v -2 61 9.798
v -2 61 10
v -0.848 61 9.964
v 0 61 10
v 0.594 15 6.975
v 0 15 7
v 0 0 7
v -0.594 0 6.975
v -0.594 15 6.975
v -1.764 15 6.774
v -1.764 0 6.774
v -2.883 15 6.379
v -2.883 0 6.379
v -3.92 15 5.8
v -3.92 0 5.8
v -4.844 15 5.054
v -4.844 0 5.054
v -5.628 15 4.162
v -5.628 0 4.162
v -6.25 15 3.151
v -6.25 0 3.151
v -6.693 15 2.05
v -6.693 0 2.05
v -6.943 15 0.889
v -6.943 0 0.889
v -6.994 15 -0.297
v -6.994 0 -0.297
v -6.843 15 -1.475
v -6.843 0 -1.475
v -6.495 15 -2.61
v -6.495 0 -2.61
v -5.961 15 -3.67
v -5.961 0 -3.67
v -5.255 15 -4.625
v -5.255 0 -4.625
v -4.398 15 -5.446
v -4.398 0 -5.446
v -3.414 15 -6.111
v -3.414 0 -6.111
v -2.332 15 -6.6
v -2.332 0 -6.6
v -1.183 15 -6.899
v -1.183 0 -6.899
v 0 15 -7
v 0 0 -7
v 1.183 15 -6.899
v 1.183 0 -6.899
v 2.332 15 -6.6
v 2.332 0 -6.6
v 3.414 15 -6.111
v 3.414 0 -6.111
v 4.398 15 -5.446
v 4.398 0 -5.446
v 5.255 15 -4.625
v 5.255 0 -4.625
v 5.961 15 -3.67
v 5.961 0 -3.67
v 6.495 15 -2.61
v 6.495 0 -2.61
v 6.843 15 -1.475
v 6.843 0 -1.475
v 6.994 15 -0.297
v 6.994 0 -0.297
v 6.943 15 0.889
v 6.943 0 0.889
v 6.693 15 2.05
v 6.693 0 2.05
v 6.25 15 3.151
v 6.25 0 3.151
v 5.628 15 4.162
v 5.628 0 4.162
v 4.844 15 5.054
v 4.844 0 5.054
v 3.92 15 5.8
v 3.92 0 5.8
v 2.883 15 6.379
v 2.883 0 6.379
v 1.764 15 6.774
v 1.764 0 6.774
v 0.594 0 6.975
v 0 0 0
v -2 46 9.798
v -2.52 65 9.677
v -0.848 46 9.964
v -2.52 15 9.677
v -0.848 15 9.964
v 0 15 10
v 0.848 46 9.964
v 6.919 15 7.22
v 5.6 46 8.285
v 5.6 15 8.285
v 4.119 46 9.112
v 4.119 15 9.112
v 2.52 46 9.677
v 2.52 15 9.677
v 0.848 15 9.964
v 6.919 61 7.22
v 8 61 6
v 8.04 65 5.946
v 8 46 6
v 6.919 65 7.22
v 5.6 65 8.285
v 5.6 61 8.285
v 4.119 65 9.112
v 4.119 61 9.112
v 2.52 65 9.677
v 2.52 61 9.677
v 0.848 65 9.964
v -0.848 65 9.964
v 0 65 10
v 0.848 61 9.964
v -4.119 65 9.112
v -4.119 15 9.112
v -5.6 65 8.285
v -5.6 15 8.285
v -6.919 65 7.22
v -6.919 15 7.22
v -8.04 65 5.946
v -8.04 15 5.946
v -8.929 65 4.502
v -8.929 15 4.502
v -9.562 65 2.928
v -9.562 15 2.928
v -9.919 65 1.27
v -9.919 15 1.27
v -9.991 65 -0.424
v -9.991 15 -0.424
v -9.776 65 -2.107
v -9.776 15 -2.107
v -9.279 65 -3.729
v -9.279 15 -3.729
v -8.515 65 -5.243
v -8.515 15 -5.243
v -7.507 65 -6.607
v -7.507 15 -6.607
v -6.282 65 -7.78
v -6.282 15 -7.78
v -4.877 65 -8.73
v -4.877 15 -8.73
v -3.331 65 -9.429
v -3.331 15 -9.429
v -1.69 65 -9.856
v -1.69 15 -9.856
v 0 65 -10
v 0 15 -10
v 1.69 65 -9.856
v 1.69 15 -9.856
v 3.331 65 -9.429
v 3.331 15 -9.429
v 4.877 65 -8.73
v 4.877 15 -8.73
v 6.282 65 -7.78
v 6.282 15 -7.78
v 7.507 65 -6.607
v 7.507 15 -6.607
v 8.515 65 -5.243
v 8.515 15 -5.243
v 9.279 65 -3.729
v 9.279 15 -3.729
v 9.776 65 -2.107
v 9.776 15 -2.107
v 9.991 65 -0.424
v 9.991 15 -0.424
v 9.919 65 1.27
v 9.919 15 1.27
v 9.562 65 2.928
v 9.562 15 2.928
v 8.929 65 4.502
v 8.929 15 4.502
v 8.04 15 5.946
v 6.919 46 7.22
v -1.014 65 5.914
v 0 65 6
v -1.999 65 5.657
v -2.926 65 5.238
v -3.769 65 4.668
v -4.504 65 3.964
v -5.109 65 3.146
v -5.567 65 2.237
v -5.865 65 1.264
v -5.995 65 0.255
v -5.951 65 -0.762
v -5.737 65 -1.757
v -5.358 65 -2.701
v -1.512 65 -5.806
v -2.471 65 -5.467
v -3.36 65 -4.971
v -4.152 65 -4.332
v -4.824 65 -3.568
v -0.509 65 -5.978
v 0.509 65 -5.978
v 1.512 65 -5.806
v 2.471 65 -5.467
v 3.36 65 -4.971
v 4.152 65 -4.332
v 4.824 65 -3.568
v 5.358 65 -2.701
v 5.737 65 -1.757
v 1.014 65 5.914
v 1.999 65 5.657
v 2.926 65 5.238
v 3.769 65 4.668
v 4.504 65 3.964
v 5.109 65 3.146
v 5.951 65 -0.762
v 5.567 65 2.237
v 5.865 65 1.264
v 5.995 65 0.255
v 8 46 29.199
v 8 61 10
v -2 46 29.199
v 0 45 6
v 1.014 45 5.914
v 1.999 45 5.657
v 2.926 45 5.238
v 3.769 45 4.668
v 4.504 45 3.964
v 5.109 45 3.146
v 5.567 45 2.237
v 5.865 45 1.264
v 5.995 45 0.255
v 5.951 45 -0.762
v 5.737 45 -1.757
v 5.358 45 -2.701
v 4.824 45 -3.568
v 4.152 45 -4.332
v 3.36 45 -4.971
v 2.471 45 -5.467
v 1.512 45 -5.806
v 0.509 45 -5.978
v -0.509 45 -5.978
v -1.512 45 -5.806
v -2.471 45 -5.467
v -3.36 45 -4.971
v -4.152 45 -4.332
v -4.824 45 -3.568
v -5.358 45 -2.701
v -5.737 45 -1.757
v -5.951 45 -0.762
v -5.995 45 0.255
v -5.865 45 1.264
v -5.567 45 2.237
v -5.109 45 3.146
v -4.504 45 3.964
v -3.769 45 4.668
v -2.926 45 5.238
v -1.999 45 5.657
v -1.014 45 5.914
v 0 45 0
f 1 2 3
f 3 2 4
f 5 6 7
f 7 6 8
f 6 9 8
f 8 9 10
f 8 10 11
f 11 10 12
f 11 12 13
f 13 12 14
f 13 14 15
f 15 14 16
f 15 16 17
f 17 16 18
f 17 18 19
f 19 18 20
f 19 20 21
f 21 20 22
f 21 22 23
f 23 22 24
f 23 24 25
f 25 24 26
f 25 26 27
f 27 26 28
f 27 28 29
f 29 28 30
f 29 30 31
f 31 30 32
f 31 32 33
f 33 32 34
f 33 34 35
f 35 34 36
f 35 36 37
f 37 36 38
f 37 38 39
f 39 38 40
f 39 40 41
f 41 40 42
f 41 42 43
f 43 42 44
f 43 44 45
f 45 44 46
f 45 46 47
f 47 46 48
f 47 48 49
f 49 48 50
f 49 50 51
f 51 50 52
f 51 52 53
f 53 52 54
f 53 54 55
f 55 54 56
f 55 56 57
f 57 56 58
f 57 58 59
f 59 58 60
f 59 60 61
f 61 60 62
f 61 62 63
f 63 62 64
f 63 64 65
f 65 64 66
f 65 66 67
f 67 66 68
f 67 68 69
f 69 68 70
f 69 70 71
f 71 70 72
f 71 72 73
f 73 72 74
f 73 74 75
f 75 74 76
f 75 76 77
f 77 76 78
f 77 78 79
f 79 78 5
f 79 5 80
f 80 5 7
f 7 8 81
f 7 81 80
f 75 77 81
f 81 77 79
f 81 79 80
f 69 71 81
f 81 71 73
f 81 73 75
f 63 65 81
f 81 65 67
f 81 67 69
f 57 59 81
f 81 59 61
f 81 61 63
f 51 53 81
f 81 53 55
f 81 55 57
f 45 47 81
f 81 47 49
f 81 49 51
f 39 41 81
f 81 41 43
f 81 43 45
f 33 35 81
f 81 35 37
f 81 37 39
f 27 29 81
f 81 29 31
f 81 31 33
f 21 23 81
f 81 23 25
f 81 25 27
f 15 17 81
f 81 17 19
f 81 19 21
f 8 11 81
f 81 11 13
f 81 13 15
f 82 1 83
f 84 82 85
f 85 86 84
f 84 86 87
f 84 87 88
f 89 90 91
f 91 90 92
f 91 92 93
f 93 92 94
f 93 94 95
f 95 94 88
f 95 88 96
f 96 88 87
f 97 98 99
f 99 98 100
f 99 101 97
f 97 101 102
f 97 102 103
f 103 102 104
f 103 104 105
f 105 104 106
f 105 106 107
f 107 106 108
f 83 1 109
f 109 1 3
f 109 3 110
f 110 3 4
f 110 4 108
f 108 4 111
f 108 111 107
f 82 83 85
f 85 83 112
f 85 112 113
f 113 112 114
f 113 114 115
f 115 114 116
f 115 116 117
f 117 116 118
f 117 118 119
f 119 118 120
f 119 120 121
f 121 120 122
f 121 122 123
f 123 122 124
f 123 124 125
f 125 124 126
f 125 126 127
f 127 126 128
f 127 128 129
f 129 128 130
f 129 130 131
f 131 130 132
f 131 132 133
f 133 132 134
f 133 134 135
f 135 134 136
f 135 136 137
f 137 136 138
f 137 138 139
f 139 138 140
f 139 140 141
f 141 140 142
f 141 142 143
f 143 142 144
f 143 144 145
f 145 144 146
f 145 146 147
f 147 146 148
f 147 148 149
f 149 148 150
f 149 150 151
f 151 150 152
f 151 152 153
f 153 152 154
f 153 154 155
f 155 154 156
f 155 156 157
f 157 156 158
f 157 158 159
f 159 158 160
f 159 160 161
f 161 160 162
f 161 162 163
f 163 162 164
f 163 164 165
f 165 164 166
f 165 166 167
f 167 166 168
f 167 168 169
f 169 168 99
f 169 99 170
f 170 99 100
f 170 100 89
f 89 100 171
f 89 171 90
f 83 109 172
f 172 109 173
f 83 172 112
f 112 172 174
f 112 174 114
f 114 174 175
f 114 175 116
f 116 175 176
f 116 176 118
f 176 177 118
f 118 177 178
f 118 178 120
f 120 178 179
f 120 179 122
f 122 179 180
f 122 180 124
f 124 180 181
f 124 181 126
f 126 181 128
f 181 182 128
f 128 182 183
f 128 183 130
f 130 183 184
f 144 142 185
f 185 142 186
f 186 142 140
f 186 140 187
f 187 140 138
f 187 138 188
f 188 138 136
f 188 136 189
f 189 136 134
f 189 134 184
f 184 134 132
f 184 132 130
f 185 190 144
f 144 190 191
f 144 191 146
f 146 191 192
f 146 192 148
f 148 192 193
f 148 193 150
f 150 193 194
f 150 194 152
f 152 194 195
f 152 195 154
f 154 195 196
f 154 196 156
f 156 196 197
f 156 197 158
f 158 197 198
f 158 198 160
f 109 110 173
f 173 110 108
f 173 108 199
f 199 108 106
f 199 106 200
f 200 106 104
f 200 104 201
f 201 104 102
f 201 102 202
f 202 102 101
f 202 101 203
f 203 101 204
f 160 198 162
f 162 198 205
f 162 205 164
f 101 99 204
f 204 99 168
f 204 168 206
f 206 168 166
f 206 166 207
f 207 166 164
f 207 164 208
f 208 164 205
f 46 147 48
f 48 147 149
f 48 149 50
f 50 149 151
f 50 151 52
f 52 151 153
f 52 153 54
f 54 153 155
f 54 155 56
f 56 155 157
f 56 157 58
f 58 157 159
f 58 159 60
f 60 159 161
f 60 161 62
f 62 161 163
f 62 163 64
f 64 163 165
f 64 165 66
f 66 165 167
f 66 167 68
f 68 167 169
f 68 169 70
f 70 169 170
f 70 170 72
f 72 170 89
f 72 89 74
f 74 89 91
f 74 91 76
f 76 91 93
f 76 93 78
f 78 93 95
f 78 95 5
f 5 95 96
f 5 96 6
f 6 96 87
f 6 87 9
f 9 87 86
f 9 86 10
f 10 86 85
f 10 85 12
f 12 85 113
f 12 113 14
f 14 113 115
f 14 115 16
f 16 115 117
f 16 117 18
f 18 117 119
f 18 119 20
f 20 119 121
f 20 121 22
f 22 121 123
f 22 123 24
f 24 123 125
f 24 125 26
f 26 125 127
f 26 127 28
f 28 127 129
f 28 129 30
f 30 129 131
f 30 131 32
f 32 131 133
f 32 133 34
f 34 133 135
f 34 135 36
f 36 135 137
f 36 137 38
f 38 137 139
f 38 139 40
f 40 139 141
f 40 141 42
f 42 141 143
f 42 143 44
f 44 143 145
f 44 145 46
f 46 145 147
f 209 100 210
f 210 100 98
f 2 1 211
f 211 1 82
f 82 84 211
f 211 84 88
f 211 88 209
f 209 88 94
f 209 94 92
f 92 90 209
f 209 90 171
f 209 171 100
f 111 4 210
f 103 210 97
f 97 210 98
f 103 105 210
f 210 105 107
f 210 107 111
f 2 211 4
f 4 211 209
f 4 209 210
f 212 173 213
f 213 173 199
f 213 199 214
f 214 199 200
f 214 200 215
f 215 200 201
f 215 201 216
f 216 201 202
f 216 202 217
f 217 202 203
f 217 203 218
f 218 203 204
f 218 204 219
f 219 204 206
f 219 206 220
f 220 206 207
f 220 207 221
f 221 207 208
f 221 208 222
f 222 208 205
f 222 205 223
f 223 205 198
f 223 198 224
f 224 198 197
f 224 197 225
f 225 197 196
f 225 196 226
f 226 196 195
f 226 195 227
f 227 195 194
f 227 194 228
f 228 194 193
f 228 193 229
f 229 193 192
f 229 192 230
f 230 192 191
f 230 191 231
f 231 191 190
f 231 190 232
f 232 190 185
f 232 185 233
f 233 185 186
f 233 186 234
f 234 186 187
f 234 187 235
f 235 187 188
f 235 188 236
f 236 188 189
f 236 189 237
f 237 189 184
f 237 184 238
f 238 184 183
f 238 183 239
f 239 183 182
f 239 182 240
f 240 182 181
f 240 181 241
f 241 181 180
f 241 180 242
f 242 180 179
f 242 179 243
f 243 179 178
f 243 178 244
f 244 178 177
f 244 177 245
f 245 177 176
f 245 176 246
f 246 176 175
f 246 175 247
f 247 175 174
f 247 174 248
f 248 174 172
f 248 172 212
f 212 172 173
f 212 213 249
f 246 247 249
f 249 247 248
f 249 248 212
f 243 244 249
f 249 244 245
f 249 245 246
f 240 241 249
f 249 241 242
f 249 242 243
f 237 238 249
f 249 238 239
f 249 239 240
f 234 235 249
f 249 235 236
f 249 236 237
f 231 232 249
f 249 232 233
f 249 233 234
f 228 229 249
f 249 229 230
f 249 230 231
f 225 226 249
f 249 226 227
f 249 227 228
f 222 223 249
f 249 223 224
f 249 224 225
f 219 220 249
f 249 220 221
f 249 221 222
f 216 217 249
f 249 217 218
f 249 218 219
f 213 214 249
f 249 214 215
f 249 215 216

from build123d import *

# Parameters (mm, degrees)
CROQUIS1_R                   = 7
SALIENTE_EXTRUIR1_DEPTH      = 15
CROQUIS2_R                   = 10
SALIENTE_EXTRUIR2_DEPTH      = 50
SALIENTE_EXTRUIR3_DEPTH      = 30
SALIENTE_EXTRUIR3_DEPTH_BACK = 6
CROQUIS3_W                   = 10
CROQUIS3_H                   = 15
CHAFL_N1_SIZE                = 30
CHAFL_N1_SIZE_2              = 23.438568795
CROQUIS4_R                   = 6
CORTAR_EXTRUIR1_DEPTH        = 20


with BuildPart() as part:
    # Croquis1 → Saliente-Extruir1 (new body)
    with BuildSketch(Plane(origin=(0, 0, 0), x_dir=(1, 0, 0), z_dir=(0, 1, 0))):
        with Locations(Location((0, 0, 0), (0, 0, 270))):
            Circle(CROQUIS1_R)
    extrude(amount=SALIENTE_EXTRUIR1_DEPTH)

    # Croquis2 → Saliente-Extruir2 (add)
    with BuildSketch(Plane(origin=(0, 15, 0), x_dir=(1, 0, 0), z_dir=(0, 1, 0))):
        with Locations(Location((0, 0, 0), (0, 0, 270))):
            Circle(CROQUIS2_R)
    extrude(amount=SALIENTE_EXTRUIR2_DEPTH)

    # Croquis3 → Saliente-Extruir3 (add, two sides: drawn at the far end of the back side and taken through both)
    with BuildSketch(Plane.XY.offset(10).offset(-SALIENTE_EXTRUIR3_DEPTH_BACK)):
        with Locations((3, 53.5)):
            Rectangle(CROQUIS3_W, CROQUIS3_H)
    extrude(amount=SALIENTE_EXTRUIR3_DEPTH + SALIENTE_EXTRUIR3_DEPTH_BACK)

    # Chaflán1
    # the kernel refuses this chamfer: 30, 23.438568795 mm, written as the material it takes off along each edge
    with BuildSketch(Plane(origin=(85.38607652, 61, 40), x_dir=(0, 0.023867141339117135, -0.9997151392093142), z_dir=(-1, 0, 0))) as chafl_n1_piece_1_section:
        Polygon((CHAFL_N1_SIZE * 0.999715139209, CHAFL_N1_SIZE * 0.0238671413391), (-CHAFL_N1_SIZE_2 * 0.0238671413393, CHAFL_N1_SIZE_2 * 0.999715139218), (0, 0), align=None)
    chafl_n1_piece_1 = extrude(amount=164.77215304, mode=Mode.PRIVATE)
    chafl_n1_piece_1 = chafl_n1_piece_1 - Plane(origin=(0, 53.349255428, 0), x_dir=(0, 0, 1), z_dir=(0, -1, 0)) * Cylinder(10, 450, mode=Mode.PRIVATE)
    add(chafl_n1_piece_1, mode=Mode.SUBTRACT)

    # Croquis4 → Cortar-Extruir1 (cut)
    with BuildSketch(Plane(origin=(0, 65, 0), x_dir=(1, 0, 0), z_dir=(0, 1, 0))):
        with Locations(Location((0, 0, 0), (0, 0, 270))):
            Circle(CROQUIS4_R)
    extrude(amount=-CORTAR_EXTRUIR1_DEPTH, mode=Mode.SUBTRACT)


solid = part.part
